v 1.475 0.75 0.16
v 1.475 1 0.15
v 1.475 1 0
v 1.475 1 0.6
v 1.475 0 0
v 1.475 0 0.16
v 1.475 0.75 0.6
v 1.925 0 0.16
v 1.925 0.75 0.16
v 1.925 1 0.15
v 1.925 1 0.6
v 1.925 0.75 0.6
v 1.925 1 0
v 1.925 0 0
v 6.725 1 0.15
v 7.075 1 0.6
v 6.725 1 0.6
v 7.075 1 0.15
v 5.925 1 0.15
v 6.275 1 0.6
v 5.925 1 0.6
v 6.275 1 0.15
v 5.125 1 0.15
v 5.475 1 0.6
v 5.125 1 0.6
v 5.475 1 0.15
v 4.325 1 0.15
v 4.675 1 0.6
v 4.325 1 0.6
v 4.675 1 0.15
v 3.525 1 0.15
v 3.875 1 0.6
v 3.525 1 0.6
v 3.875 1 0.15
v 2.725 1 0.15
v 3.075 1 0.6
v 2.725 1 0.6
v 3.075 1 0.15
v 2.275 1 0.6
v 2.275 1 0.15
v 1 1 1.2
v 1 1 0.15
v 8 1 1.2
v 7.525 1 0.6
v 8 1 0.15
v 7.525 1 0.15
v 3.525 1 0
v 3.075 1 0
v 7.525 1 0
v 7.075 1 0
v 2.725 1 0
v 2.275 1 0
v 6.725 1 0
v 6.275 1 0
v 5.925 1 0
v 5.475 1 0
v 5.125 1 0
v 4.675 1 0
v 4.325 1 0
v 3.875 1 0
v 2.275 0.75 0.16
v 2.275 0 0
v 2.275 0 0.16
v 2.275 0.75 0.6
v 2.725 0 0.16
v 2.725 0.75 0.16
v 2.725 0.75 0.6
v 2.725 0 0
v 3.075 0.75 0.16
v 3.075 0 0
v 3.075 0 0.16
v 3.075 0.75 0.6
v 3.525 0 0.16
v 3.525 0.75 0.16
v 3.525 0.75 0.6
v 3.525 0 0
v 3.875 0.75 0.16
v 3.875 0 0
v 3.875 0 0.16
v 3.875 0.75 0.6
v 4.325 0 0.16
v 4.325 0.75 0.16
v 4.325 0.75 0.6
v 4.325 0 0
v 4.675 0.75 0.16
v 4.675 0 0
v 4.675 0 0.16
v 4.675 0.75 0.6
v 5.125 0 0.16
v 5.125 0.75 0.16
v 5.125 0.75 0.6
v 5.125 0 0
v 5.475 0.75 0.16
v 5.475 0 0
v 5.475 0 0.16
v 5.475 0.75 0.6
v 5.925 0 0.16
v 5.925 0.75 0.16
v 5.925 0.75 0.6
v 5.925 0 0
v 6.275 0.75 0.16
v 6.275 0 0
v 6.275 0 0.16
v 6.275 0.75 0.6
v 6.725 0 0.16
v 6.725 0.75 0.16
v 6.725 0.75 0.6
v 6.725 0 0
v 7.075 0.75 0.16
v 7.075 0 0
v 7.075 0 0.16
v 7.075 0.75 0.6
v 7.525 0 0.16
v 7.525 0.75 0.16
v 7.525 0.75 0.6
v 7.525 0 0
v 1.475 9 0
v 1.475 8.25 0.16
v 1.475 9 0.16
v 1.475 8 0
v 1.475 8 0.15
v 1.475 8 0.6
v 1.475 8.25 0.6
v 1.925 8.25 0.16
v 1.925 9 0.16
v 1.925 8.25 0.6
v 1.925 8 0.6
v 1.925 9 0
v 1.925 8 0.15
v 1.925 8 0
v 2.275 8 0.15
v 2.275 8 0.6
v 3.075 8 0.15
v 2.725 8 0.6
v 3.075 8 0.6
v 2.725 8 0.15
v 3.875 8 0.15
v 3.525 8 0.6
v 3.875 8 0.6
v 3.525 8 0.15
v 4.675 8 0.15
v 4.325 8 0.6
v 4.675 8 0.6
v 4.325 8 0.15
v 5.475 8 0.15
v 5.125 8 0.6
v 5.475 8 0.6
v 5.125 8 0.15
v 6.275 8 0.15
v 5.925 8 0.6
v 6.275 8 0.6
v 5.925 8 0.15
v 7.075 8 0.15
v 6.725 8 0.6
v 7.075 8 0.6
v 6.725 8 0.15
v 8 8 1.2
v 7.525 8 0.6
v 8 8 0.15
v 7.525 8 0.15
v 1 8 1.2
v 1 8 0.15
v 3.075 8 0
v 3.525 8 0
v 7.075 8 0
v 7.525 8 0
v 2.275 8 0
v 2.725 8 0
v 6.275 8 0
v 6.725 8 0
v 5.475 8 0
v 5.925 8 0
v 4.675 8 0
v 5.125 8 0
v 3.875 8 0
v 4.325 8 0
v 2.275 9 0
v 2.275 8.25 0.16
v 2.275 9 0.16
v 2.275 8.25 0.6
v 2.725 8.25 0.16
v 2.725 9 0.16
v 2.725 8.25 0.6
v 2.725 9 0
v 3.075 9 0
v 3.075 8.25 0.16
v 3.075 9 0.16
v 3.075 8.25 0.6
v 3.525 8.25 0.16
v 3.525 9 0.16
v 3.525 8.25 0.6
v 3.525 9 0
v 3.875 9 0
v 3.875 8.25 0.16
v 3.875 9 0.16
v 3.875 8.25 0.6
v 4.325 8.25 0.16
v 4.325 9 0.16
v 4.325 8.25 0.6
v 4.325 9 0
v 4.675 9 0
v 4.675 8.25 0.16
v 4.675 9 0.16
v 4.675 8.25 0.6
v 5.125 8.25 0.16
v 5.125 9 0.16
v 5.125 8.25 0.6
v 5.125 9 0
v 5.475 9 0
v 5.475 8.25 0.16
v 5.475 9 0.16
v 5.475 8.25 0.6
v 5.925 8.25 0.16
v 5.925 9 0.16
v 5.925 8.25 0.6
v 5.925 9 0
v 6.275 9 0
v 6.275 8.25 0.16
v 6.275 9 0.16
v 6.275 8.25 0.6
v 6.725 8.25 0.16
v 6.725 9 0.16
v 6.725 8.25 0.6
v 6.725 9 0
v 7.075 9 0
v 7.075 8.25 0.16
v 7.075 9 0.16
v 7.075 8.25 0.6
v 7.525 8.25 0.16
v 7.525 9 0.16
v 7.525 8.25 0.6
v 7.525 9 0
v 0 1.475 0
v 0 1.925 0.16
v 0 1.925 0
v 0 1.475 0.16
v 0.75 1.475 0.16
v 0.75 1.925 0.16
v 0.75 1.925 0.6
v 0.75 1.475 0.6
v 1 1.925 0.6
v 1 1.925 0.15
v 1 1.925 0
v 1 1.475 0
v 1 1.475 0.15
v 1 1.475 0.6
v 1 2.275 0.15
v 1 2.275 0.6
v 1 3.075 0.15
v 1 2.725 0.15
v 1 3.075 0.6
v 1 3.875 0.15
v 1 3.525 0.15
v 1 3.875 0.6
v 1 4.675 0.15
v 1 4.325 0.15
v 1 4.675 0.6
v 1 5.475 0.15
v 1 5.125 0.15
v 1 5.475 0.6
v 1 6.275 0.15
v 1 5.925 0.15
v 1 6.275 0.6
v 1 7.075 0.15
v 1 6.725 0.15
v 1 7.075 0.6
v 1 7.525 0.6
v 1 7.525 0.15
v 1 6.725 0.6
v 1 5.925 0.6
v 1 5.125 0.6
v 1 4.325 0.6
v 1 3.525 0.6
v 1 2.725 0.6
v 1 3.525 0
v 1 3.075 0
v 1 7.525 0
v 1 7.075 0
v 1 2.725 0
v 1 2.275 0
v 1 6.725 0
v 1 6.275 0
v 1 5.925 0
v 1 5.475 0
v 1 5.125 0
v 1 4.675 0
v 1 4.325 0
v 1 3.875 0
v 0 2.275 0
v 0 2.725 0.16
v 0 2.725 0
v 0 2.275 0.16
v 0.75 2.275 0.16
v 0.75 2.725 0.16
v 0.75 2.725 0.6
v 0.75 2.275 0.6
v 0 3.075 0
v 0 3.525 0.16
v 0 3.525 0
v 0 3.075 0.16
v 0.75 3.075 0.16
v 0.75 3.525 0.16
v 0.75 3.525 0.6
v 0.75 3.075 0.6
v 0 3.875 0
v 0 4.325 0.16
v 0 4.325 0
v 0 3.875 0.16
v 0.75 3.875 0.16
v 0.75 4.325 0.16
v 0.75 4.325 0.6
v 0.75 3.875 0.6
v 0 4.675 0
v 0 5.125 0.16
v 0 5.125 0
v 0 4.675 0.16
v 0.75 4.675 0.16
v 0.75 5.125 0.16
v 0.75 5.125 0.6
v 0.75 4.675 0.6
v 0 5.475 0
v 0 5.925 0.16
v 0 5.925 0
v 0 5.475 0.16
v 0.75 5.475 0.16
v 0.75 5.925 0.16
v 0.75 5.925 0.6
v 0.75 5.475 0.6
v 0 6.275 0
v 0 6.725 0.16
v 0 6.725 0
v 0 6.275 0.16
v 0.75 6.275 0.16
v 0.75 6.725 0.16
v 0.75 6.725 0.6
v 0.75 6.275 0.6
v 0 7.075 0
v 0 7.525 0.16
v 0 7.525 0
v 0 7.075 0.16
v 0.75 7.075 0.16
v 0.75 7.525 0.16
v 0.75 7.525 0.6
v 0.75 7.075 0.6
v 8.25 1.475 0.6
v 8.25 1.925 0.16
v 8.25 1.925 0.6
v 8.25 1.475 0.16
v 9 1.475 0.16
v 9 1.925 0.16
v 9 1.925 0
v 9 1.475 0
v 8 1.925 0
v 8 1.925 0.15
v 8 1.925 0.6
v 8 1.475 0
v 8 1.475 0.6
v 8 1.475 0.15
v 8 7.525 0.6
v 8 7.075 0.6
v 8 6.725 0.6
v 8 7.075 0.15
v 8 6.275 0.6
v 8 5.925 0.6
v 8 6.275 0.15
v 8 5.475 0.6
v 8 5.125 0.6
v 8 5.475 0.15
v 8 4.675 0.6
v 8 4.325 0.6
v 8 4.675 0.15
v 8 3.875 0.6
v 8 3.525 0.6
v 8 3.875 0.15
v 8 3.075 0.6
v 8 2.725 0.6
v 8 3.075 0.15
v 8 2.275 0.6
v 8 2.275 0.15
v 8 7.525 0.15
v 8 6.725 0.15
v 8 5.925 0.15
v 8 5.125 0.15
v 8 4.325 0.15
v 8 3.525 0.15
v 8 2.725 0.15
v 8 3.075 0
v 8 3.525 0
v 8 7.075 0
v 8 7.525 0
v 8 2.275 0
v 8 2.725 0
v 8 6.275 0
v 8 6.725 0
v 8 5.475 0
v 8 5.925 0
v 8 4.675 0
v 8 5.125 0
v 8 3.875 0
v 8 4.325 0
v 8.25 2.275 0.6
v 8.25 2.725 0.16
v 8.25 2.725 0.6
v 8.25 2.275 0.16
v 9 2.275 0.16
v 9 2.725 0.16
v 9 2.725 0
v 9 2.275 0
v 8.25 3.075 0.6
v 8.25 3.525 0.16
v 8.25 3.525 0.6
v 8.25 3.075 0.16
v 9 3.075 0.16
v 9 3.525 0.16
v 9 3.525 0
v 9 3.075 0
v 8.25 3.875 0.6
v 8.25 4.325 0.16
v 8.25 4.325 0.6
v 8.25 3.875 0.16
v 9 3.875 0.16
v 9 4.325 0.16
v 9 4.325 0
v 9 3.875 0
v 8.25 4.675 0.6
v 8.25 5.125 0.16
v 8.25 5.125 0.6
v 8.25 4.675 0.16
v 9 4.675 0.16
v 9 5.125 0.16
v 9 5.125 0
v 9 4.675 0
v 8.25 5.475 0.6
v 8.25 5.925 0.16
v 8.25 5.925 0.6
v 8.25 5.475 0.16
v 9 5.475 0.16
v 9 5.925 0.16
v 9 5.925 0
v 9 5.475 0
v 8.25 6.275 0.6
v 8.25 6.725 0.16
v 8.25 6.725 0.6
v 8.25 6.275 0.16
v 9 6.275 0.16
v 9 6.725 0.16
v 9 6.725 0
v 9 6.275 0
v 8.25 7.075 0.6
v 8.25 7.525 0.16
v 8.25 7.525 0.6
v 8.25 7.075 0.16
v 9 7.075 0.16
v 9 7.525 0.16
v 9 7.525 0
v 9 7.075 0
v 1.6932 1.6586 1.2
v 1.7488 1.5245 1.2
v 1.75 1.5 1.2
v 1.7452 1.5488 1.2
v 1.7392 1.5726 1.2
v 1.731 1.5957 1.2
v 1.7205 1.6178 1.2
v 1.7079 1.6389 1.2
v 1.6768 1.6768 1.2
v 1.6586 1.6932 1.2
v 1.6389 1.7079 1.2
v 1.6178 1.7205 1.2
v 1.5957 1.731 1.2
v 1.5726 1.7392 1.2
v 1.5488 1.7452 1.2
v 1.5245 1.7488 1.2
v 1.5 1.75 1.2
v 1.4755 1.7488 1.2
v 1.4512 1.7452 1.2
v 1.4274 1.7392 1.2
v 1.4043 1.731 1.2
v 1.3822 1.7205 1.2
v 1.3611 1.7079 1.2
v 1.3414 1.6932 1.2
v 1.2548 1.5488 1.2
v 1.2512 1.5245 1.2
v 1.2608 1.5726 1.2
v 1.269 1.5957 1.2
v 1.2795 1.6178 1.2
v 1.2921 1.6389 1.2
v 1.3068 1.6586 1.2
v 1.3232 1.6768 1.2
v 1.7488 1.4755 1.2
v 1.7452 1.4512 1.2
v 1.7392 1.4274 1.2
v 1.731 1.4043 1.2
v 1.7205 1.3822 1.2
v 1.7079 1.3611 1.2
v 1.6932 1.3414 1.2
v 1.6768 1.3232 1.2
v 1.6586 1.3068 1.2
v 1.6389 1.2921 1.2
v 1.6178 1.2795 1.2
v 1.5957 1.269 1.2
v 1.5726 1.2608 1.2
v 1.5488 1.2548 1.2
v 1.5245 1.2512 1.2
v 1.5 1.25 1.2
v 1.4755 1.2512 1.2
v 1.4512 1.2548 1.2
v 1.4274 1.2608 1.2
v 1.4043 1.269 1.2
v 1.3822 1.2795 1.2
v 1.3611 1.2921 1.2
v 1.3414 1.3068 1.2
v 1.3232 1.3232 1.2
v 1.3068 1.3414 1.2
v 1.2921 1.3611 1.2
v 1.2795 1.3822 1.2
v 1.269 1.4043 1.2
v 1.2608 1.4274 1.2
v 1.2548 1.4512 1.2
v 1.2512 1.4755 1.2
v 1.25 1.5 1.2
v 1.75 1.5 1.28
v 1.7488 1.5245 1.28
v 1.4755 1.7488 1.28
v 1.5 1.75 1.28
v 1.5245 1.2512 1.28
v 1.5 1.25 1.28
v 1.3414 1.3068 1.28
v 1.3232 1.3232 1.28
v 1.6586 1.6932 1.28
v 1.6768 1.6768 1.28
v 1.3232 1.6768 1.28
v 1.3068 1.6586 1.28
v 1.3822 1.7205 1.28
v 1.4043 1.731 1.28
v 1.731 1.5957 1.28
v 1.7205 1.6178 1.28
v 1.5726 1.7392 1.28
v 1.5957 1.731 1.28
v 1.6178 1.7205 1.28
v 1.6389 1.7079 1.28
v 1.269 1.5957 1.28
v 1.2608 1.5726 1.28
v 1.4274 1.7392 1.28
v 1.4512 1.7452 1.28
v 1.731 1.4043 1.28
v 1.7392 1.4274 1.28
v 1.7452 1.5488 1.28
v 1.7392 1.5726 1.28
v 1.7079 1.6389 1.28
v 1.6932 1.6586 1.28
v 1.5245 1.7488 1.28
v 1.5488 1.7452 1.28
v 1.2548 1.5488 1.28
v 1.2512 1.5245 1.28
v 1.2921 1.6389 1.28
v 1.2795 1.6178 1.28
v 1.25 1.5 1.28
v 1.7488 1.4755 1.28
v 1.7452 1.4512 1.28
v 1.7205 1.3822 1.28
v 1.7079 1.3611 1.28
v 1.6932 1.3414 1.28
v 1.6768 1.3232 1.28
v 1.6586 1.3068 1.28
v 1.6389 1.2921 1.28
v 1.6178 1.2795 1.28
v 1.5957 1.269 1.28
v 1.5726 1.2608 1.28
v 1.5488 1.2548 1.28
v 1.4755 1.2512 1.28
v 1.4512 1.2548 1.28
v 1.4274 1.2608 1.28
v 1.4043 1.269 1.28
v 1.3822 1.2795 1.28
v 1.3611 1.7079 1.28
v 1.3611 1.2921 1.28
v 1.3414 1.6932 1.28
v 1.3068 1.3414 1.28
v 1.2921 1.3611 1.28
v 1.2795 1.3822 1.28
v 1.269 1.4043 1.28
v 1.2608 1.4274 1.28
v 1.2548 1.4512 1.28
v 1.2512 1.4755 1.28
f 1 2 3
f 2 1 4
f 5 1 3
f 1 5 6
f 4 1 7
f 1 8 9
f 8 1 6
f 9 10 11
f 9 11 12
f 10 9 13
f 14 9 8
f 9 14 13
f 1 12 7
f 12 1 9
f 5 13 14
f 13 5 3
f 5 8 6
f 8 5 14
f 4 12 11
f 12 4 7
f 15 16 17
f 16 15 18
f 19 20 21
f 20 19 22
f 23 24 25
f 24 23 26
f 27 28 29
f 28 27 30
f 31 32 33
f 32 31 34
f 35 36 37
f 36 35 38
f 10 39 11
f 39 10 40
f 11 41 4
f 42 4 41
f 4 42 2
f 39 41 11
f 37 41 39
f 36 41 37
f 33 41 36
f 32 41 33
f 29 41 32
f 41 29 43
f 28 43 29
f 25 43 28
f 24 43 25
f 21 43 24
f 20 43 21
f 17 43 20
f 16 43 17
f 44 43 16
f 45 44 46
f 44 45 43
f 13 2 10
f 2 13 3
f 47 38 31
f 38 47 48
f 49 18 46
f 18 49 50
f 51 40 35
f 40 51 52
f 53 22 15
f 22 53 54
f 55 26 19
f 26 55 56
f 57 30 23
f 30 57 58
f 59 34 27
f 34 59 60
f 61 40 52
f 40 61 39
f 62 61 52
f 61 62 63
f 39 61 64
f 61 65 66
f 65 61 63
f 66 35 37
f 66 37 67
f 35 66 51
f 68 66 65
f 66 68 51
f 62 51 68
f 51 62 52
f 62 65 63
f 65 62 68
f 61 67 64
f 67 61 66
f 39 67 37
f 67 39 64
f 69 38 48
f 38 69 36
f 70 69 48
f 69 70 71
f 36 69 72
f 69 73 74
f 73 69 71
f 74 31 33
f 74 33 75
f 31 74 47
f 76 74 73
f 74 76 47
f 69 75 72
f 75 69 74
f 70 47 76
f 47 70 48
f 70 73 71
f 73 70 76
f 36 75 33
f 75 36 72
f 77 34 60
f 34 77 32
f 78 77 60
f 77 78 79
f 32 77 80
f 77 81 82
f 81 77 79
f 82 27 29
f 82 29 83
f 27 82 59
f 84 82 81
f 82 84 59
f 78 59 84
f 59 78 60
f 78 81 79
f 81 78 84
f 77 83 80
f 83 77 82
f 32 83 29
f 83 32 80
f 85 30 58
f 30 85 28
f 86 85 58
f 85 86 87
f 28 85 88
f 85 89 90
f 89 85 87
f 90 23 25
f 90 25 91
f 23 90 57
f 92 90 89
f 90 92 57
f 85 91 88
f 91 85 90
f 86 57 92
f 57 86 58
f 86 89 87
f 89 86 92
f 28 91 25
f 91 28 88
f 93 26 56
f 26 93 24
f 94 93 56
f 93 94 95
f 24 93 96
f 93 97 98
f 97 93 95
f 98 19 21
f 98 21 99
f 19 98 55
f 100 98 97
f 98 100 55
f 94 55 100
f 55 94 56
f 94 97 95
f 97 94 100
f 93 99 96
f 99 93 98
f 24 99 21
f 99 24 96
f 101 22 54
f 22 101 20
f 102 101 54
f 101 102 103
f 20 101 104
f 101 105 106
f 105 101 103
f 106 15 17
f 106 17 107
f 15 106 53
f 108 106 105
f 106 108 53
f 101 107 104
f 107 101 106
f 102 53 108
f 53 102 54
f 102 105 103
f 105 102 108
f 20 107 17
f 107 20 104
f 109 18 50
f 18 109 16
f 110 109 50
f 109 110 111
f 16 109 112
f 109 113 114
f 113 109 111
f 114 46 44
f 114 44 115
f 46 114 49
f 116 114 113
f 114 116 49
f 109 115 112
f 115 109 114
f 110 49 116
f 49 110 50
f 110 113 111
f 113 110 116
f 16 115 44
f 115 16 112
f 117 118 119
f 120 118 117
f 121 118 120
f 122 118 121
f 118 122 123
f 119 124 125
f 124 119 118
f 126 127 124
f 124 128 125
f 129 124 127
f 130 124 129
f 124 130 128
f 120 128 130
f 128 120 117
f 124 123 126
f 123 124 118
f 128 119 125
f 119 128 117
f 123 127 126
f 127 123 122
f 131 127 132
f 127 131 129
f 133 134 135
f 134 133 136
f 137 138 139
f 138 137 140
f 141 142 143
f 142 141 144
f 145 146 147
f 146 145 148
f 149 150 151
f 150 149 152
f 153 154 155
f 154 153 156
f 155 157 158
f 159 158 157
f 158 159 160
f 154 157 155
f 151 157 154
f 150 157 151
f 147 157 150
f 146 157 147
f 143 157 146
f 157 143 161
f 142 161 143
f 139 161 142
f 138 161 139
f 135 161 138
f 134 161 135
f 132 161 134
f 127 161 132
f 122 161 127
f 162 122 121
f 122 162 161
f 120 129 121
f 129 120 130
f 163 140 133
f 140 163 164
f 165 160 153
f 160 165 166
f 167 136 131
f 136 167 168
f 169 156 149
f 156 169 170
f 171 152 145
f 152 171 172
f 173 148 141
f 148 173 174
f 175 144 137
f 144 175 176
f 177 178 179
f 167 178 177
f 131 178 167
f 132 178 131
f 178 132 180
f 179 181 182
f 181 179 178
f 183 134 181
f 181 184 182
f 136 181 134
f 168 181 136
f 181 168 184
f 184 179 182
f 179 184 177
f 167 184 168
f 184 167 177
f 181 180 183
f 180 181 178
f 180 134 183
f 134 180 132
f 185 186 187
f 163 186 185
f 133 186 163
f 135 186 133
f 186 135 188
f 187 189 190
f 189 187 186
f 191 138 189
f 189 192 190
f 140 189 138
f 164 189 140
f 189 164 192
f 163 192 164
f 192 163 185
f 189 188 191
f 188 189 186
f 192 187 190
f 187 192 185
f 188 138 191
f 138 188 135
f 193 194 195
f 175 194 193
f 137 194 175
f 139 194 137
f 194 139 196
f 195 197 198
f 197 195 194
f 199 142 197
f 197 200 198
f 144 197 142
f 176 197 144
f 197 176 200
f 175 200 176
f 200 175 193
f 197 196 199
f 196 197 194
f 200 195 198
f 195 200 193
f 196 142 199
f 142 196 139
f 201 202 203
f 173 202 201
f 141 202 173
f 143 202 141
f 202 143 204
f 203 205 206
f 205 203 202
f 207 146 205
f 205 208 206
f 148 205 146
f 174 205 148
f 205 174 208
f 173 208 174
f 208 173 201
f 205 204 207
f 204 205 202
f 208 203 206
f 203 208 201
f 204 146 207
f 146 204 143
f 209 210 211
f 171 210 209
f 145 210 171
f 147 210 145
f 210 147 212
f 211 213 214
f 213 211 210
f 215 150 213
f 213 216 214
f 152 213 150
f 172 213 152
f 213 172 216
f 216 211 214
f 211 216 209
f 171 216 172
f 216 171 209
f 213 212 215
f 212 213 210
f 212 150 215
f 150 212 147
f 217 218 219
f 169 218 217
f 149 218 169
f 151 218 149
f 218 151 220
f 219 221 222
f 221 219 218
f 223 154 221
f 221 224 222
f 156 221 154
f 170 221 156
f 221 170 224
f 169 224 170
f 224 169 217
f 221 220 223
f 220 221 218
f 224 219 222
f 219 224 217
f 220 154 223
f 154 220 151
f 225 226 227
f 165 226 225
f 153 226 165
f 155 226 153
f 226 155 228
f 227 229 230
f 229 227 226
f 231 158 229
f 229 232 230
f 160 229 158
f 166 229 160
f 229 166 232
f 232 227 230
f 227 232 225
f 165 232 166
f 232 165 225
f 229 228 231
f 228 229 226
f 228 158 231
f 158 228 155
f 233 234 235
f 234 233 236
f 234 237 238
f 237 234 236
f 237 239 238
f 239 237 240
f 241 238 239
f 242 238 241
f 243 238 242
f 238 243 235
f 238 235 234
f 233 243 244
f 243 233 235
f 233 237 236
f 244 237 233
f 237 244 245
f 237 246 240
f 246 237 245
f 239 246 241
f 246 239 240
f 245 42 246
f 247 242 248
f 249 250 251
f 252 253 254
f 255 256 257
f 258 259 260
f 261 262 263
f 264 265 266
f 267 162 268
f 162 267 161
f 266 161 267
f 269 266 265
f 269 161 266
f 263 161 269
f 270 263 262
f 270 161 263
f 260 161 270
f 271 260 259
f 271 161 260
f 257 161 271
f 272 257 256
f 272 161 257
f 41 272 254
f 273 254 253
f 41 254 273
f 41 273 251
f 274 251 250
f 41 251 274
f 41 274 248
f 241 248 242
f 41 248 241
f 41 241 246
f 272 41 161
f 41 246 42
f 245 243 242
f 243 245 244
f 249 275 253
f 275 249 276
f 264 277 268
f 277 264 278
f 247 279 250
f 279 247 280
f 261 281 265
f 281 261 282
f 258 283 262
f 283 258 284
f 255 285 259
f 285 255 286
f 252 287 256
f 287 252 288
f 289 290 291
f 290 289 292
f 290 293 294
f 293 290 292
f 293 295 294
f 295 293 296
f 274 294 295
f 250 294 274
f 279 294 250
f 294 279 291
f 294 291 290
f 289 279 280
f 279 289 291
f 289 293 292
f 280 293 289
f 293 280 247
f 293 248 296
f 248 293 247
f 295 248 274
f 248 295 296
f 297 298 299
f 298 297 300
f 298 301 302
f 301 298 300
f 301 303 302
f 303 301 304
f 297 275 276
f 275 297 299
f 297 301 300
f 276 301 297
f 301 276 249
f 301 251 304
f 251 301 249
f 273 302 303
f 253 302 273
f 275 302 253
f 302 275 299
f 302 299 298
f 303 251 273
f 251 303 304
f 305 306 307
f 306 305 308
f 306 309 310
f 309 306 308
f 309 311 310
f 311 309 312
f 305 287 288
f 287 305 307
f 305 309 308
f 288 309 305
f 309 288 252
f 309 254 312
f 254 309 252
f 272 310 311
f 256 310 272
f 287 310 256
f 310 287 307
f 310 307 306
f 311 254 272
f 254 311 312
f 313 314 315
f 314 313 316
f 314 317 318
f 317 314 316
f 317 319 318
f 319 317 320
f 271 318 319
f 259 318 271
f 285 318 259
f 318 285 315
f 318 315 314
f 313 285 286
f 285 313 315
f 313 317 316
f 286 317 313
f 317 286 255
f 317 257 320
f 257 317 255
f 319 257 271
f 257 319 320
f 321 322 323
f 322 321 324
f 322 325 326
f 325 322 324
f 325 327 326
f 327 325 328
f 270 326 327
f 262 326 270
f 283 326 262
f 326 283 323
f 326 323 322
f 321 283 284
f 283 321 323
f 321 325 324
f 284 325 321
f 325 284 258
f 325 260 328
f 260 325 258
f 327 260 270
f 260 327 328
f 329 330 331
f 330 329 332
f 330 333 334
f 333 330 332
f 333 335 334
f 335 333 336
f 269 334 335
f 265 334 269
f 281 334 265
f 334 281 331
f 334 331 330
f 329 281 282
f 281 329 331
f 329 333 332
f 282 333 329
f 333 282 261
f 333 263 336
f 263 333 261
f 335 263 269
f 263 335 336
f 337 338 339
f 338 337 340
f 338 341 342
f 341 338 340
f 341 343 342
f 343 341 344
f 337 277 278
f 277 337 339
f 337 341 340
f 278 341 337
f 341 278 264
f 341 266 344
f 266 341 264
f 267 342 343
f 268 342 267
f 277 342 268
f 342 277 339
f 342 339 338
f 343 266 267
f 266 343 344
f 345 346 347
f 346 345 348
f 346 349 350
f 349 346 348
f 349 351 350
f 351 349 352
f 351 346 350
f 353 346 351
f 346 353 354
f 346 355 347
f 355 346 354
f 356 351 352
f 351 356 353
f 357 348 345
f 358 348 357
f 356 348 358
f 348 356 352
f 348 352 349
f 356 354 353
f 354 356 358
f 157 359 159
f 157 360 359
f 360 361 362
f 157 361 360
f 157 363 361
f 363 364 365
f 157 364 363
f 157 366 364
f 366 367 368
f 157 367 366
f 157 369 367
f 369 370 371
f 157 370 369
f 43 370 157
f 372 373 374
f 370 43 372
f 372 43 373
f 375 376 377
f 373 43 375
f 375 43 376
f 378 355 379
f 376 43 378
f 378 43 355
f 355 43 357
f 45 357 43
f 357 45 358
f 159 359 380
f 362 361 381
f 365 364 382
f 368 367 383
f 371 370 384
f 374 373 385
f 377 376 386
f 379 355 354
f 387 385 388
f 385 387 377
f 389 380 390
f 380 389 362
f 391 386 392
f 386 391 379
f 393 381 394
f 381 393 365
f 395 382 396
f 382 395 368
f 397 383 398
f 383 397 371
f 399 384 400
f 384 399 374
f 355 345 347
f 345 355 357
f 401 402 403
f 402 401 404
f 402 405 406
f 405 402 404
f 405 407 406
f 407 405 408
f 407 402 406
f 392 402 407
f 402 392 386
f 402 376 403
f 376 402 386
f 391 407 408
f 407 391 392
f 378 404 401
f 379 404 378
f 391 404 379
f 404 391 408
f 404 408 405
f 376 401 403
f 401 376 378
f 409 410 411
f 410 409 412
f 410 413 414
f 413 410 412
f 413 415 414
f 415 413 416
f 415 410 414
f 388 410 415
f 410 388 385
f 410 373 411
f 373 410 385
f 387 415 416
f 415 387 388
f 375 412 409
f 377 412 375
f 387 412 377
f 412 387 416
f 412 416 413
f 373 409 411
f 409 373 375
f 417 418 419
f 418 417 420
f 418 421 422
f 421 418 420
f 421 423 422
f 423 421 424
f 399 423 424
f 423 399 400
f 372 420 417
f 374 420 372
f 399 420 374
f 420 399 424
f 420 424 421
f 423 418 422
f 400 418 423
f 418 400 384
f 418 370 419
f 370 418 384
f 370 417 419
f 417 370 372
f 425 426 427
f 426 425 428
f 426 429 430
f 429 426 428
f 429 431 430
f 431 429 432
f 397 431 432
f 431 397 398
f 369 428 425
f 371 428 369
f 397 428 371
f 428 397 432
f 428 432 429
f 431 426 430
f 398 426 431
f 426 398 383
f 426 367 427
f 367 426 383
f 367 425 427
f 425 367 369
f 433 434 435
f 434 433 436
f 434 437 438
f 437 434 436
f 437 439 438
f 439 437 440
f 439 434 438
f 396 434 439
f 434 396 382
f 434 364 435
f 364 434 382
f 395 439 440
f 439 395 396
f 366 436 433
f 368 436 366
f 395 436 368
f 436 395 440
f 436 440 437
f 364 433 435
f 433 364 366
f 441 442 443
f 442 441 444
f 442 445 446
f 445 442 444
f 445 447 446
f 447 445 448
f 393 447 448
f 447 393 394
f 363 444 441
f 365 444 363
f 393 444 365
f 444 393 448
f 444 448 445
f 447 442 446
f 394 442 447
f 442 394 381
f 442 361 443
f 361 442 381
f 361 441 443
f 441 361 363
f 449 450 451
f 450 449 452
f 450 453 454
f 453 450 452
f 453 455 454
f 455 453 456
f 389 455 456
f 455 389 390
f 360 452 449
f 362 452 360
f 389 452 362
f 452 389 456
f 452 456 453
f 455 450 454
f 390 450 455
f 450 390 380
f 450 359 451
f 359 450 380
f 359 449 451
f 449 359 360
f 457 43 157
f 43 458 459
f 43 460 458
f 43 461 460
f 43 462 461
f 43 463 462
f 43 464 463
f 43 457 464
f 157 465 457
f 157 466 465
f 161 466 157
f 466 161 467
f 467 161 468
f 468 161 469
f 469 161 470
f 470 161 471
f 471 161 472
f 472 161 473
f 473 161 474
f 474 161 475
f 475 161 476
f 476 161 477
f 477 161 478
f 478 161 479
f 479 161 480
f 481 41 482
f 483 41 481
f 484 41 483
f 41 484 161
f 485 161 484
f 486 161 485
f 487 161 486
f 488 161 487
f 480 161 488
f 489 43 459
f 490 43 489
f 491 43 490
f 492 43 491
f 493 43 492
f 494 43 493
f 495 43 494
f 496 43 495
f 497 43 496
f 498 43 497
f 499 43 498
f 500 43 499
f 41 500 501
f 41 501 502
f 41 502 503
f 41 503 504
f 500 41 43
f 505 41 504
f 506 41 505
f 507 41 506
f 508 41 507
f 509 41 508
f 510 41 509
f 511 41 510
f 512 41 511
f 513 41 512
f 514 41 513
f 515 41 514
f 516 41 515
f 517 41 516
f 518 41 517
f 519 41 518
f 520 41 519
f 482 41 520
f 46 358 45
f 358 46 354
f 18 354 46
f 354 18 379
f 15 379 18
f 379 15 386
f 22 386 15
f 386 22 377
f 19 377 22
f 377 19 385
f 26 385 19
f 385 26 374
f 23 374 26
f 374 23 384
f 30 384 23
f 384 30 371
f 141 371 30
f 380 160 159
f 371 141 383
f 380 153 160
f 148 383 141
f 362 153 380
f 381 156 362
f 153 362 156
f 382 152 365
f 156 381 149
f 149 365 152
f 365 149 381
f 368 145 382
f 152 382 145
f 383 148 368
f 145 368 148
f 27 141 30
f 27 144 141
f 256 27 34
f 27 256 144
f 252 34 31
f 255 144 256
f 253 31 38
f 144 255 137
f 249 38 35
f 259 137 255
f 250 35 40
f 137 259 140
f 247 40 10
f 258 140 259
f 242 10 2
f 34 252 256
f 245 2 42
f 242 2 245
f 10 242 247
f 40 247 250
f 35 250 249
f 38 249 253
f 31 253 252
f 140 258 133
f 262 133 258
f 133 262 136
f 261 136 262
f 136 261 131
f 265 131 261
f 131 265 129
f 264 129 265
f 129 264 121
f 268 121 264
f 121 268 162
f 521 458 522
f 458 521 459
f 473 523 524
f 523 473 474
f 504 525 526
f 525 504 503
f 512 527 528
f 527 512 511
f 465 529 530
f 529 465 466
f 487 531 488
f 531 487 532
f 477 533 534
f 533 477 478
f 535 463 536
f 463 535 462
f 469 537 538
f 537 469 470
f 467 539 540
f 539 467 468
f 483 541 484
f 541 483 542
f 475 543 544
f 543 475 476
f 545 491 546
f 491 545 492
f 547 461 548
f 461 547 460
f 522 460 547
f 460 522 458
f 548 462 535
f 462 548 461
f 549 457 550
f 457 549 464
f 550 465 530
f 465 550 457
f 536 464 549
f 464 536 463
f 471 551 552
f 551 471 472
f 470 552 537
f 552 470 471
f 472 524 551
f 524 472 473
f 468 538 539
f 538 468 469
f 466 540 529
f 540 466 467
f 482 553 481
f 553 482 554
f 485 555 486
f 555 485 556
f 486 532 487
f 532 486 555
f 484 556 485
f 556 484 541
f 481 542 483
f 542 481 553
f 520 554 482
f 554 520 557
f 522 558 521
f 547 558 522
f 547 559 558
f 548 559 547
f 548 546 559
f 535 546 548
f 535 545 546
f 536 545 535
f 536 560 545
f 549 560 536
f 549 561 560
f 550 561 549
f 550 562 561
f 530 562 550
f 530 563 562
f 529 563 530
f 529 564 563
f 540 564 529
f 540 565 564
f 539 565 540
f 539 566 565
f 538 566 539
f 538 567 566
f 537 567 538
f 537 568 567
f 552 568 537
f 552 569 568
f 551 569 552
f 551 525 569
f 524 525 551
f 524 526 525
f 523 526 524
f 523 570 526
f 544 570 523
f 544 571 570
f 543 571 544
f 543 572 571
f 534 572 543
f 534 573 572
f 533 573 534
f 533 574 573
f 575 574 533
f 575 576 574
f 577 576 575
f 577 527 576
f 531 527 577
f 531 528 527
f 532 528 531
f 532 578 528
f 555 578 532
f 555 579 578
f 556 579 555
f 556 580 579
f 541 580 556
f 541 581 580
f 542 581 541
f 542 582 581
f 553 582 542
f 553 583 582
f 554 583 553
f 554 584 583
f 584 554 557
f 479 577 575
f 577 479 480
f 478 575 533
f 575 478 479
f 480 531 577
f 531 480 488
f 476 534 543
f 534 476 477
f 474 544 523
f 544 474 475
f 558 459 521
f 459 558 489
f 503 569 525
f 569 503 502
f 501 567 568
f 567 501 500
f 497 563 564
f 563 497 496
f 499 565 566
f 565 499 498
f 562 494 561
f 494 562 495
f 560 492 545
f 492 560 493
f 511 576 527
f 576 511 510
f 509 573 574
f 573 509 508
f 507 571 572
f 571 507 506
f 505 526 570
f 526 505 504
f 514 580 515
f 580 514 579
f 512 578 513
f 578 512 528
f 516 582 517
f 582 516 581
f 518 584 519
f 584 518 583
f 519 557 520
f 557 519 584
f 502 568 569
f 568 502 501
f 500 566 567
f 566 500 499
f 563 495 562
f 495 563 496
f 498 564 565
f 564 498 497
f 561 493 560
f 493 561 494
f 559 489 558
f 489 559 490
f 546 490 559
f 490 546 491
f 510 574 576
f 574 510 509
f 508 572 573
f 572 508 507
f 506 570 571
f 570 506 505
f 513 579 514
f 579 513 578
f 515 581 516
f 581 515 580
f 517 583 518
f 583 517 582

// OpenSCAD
/*32-Lead Plastic Thin Quad Flatpack - 9.0x9.0 mm Body [TQFP]

generated by com.zoubworld.electronics.cad.model3d.TQFP32
Date : Sun Jan 25 03:12:27 CET 2026
*/
L1 = 1.0 ;
D1 = 7.0 ;
L = 0.75 ;
c = 0.16 ;
E1 = 7.0 ;
e = 0.8 ;
E = 9.0 ;
N = 32.0 ;
A1 = 0.15 ;
b = 0.45 ;
A3 = 1.05 ;
A = 1.2 ;
D = 9.0 ;
$fn =64;

//body
color("black")
translate([D/2-D1/2,E/2-E1/2,A1])
cube([D1,E1,A-A1], center=false);

// pad
for (i = [-N/4/2 : 1 : N/4/2-1])
color("grey")
translate([D/2-b/2+e/2+e*i,0,0])
{
cube([b,L,c], center=false);
    translate([0,L,0])
cube([b,L1-L,A/2], center=false);
}
for (i = [-N/4/2 : 1 : N/4/2-1])
color("grey")
translate([D/2-b/2+e/2+e*i,E-L,0])
{cube([b,L,c], center=false);
    translate([0,-(L1-L),0])
cube([b,L1-L,A/2], center=false);
}

for (i = [-N/4/2 : 1 : N/4/2-1])
color("grey")
translate([0,E/2-b/2+e/2+e*i,0])
{cube([L,b,c], center=false);
    translate([L,0,0])
cube([L1-L,b,A/2], center=false);
}

for (i = [-N/4/2 : 1 : N/4/2-1])
color("grey")
translate([D-L,E/2-b/2+e/2+e*i,0])
{cube([L,b,c], center=false);
    translate([-(L1-L),0,0])
cube([L1-L,b,A/2], center=false);
}
/*
//expose pad
color("grey")
translate([D/2-D2/2,E/2-E2/2,0])
cube([D2,E2,A3], center=false);
*/
color("white")
translate([D/2-D1/2+0.5,E/2-E1/2+0.5,c])
cylinder(A-c/2,r=0.25,center=false);
